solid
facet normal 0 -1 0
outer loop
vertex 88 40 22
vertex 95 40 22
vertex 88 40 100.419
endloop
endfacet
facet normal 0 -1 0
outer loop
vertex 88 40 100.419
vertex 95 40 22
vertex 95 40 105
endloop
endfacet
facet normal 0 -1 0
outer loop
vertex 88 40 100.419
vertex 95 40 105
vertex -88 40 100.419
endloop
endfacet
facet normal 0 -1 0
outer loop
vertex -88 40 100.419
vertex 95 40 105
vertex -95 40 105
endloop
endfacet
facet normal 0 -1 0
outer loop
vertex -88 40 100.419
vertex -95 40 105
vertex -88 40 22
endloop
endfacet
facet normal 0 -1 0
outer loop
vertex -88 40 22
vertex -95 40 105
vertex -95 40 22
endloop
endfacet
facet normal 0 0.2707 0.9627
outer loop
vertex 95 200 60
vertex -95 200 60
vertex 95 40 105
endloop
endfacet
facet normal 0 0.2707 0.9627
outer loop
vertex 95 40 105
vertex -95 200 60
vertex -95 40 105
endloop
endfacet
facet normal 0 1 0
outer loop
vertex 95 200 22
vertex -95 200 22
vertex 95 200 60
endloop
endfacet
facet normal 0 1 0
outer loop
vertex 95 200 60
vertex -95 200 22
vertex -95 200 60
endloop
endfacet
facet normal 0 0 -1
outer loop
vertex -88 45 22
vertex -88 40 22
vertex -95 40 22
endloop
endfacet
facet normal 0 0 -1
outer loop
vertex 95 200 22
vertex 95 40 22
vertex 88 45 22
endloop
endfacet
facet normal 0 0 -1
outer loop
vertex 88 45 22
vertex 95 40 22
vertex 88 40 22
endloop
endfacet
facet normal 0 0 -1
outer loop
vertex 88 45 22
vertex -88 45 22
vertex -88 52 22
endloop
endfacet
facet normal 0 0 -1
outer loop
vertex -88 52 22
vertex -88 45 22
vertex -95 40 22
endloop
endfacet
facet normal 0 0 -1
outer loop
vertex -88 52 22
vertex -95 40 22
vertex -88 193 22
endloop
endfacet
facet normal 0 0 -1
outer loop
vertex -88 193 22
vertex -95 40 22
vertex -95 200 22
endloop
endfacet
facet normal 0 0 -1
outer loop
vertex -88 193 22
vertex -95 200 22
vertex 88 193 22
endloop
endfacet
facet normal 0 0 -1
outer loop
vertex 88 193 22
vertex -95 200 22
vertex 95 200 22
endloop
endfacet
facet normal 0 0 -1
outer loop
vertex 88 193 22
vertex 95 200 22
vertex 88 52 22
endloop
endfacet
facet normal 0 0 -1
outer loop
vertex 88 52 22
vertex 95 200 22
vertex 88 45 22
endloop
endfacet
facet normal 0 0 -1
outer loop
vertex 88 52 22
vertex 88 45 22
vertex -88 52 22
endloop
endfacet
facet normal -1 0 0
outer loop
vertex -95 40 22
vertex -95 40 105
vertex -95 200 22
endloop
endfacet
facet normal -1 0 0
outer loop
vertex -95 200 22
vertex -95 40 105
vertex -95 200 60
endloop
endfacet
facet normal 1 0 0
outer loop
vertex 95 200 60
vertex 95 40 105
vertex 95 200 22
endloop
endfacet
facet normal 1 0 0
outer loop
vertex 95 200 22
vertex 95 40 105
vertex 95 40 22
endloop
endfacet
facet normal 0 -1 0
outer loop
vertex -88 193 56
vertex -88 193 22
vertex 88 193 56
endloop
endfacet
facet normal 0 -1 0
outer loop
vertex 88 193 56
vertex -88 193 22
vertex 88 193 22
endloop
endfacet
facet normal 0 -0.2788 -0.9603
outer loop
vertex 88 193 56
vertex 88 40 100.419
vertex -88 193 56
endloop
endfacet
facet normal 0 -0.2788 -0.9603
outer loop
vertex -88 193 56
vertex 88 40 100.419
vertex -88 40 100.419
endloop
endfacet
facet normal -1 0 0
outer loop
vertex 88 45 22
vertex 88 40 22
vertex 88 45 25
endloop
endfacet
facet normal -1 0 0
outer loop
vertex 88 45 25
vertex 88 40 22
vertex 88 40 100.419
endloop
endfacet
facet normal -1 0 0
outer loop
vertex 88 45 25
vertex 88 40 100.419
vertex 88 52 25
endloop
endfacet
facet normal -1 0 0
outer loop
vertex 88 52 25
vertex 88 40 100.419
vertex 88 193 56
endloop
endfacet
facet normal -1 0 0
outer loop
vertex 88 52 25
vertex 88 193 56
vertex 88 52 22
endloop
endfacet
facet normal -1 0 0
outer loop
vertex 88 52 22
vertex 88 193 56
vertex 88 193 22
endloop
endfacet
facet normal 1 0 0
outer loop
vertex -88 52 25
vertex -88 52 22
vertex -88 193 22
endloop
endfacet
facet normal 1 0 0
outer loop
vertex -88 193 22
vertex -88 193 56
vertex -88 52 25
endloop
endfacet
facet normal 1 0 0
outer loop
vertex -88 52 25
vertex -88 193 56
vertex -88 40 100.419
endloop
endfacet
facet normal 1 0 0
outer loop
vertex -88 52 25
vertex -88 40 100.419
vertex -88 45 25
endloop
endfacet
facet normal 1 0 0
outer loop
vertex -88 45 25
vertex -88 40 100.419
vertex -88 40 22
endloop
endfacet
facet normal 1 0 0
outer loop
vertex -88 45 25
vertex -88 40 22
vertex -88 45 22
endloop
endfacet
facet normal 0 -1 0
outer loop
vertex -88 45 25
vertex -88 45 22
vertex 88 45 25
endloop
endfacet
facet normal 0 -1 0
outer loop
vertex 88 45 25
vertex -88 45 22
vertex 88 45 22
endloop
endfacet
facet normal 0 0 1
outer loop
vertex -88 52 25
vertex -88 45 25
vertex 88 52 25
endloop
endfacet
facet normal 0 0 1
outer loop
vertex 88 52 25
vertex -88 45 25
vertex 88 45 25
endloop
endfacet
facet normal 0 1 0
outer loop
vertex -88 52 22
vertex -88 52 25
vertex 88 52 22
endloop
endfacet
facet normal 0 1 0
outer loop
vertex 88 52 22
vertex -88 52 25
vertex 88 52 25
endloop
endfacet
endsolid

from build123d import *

# Parameters (mm, degrees)
SLOPED_COVER_BLANK_DEPTH                      = 95
SLOPED_COVER_BLANK_DEPTH_BACK                 = 95
OPEN_BOTTOM_AND_FRONT_COVER_CAVITY_DEPTH      = 88
OPEN_BOTTOM_AND_FRONT_COVER_CAVITY_DEPTH_BACK = 88
FRONT_GASKET_COMPRESSION_RAIL_DEPTH           = 95
FRONT_GASKET_COMPRESSION_RAIL_DEPTH_BACK      = 95
FRONT_GASKET_COMPRESSION_RAIL_PROFILE_W       = 3
FRONT_GASKET_COMPRESSION_RAIL_PROFILE_H       = 7


with BuildPart() as part:
    # Sloped Cover Outer Side Profile → Sloped Cover Blank (new, two sides: drawn at the far end of the back side and taken through both)
    with BuildSketch(Plane(origin=(0, 0, 0), x_dir=(0, 0, -1), z_dir=(1, 0, 0)).offset(-SLOPED_COVER_BLANK_DEPTH_BACK)):
        Polygon((-22, 40), (-22, 200), (-60, 200), (-105, 40), align=None)
    extrude(amount=SLOPED_COVER_BLANK_DEPTH + SLOPED_COVER_BLANK_DEPTH_BACK)

    # Open Bottom Cover Cavity Profile → Open Bottom and Front Cover Cavity (cut, two sides: drawn at the far end of the back side and taken through both)
    with BuildSketch(Plane(origin=(0, 0, 0), x_dir=(0, 0, -1), z_dir=(1, 0, 0)).offset(-OPEN_BOTTOM_AND_FRONT_COVER_CAVITY_DEPTH_BACK)):
        Polygon((-18, 38), (-18, 193), (-56, 193), (-101, 38), align=None)
    extrude(amount=OPEN_BOTTOM_AND_FRONT_COVER_CAVITY_DEPTH + OPEN_BOTTOM_AND_FRONT_COVER_CAVITY_DEPTH_BACK, mode=Mode.SUBTRACT)

    # Front Gasket Compression Rail Profile → Front Gasket Compression Rail (add, two sides: drawn at the far end of the back side and taken through both)
    with BuildSketch(Plane(origin=(0, 0, 0), x_dir=(0, 0, -1), z_dir=(1, 0, 0)).offset(-FRONT_GASKET_COMPRESSION_RAIL_DEPTH_BACK)):
        with Locations((-23.5, 48.5)):
            Rectangle(FRONT_GASKET_COMPRESSION_RAIL_PROFILE_W, FRONT_GASKET_COMPRESSION_RAIL_PROFILE_H)
    extrude(amount=FRONT_GASKET_COMPRESSION_RAIL_DEPTH + FRONT_GASKET_COMPRESSION_RAIL_DEPTH_BACK)


solid = part.part
